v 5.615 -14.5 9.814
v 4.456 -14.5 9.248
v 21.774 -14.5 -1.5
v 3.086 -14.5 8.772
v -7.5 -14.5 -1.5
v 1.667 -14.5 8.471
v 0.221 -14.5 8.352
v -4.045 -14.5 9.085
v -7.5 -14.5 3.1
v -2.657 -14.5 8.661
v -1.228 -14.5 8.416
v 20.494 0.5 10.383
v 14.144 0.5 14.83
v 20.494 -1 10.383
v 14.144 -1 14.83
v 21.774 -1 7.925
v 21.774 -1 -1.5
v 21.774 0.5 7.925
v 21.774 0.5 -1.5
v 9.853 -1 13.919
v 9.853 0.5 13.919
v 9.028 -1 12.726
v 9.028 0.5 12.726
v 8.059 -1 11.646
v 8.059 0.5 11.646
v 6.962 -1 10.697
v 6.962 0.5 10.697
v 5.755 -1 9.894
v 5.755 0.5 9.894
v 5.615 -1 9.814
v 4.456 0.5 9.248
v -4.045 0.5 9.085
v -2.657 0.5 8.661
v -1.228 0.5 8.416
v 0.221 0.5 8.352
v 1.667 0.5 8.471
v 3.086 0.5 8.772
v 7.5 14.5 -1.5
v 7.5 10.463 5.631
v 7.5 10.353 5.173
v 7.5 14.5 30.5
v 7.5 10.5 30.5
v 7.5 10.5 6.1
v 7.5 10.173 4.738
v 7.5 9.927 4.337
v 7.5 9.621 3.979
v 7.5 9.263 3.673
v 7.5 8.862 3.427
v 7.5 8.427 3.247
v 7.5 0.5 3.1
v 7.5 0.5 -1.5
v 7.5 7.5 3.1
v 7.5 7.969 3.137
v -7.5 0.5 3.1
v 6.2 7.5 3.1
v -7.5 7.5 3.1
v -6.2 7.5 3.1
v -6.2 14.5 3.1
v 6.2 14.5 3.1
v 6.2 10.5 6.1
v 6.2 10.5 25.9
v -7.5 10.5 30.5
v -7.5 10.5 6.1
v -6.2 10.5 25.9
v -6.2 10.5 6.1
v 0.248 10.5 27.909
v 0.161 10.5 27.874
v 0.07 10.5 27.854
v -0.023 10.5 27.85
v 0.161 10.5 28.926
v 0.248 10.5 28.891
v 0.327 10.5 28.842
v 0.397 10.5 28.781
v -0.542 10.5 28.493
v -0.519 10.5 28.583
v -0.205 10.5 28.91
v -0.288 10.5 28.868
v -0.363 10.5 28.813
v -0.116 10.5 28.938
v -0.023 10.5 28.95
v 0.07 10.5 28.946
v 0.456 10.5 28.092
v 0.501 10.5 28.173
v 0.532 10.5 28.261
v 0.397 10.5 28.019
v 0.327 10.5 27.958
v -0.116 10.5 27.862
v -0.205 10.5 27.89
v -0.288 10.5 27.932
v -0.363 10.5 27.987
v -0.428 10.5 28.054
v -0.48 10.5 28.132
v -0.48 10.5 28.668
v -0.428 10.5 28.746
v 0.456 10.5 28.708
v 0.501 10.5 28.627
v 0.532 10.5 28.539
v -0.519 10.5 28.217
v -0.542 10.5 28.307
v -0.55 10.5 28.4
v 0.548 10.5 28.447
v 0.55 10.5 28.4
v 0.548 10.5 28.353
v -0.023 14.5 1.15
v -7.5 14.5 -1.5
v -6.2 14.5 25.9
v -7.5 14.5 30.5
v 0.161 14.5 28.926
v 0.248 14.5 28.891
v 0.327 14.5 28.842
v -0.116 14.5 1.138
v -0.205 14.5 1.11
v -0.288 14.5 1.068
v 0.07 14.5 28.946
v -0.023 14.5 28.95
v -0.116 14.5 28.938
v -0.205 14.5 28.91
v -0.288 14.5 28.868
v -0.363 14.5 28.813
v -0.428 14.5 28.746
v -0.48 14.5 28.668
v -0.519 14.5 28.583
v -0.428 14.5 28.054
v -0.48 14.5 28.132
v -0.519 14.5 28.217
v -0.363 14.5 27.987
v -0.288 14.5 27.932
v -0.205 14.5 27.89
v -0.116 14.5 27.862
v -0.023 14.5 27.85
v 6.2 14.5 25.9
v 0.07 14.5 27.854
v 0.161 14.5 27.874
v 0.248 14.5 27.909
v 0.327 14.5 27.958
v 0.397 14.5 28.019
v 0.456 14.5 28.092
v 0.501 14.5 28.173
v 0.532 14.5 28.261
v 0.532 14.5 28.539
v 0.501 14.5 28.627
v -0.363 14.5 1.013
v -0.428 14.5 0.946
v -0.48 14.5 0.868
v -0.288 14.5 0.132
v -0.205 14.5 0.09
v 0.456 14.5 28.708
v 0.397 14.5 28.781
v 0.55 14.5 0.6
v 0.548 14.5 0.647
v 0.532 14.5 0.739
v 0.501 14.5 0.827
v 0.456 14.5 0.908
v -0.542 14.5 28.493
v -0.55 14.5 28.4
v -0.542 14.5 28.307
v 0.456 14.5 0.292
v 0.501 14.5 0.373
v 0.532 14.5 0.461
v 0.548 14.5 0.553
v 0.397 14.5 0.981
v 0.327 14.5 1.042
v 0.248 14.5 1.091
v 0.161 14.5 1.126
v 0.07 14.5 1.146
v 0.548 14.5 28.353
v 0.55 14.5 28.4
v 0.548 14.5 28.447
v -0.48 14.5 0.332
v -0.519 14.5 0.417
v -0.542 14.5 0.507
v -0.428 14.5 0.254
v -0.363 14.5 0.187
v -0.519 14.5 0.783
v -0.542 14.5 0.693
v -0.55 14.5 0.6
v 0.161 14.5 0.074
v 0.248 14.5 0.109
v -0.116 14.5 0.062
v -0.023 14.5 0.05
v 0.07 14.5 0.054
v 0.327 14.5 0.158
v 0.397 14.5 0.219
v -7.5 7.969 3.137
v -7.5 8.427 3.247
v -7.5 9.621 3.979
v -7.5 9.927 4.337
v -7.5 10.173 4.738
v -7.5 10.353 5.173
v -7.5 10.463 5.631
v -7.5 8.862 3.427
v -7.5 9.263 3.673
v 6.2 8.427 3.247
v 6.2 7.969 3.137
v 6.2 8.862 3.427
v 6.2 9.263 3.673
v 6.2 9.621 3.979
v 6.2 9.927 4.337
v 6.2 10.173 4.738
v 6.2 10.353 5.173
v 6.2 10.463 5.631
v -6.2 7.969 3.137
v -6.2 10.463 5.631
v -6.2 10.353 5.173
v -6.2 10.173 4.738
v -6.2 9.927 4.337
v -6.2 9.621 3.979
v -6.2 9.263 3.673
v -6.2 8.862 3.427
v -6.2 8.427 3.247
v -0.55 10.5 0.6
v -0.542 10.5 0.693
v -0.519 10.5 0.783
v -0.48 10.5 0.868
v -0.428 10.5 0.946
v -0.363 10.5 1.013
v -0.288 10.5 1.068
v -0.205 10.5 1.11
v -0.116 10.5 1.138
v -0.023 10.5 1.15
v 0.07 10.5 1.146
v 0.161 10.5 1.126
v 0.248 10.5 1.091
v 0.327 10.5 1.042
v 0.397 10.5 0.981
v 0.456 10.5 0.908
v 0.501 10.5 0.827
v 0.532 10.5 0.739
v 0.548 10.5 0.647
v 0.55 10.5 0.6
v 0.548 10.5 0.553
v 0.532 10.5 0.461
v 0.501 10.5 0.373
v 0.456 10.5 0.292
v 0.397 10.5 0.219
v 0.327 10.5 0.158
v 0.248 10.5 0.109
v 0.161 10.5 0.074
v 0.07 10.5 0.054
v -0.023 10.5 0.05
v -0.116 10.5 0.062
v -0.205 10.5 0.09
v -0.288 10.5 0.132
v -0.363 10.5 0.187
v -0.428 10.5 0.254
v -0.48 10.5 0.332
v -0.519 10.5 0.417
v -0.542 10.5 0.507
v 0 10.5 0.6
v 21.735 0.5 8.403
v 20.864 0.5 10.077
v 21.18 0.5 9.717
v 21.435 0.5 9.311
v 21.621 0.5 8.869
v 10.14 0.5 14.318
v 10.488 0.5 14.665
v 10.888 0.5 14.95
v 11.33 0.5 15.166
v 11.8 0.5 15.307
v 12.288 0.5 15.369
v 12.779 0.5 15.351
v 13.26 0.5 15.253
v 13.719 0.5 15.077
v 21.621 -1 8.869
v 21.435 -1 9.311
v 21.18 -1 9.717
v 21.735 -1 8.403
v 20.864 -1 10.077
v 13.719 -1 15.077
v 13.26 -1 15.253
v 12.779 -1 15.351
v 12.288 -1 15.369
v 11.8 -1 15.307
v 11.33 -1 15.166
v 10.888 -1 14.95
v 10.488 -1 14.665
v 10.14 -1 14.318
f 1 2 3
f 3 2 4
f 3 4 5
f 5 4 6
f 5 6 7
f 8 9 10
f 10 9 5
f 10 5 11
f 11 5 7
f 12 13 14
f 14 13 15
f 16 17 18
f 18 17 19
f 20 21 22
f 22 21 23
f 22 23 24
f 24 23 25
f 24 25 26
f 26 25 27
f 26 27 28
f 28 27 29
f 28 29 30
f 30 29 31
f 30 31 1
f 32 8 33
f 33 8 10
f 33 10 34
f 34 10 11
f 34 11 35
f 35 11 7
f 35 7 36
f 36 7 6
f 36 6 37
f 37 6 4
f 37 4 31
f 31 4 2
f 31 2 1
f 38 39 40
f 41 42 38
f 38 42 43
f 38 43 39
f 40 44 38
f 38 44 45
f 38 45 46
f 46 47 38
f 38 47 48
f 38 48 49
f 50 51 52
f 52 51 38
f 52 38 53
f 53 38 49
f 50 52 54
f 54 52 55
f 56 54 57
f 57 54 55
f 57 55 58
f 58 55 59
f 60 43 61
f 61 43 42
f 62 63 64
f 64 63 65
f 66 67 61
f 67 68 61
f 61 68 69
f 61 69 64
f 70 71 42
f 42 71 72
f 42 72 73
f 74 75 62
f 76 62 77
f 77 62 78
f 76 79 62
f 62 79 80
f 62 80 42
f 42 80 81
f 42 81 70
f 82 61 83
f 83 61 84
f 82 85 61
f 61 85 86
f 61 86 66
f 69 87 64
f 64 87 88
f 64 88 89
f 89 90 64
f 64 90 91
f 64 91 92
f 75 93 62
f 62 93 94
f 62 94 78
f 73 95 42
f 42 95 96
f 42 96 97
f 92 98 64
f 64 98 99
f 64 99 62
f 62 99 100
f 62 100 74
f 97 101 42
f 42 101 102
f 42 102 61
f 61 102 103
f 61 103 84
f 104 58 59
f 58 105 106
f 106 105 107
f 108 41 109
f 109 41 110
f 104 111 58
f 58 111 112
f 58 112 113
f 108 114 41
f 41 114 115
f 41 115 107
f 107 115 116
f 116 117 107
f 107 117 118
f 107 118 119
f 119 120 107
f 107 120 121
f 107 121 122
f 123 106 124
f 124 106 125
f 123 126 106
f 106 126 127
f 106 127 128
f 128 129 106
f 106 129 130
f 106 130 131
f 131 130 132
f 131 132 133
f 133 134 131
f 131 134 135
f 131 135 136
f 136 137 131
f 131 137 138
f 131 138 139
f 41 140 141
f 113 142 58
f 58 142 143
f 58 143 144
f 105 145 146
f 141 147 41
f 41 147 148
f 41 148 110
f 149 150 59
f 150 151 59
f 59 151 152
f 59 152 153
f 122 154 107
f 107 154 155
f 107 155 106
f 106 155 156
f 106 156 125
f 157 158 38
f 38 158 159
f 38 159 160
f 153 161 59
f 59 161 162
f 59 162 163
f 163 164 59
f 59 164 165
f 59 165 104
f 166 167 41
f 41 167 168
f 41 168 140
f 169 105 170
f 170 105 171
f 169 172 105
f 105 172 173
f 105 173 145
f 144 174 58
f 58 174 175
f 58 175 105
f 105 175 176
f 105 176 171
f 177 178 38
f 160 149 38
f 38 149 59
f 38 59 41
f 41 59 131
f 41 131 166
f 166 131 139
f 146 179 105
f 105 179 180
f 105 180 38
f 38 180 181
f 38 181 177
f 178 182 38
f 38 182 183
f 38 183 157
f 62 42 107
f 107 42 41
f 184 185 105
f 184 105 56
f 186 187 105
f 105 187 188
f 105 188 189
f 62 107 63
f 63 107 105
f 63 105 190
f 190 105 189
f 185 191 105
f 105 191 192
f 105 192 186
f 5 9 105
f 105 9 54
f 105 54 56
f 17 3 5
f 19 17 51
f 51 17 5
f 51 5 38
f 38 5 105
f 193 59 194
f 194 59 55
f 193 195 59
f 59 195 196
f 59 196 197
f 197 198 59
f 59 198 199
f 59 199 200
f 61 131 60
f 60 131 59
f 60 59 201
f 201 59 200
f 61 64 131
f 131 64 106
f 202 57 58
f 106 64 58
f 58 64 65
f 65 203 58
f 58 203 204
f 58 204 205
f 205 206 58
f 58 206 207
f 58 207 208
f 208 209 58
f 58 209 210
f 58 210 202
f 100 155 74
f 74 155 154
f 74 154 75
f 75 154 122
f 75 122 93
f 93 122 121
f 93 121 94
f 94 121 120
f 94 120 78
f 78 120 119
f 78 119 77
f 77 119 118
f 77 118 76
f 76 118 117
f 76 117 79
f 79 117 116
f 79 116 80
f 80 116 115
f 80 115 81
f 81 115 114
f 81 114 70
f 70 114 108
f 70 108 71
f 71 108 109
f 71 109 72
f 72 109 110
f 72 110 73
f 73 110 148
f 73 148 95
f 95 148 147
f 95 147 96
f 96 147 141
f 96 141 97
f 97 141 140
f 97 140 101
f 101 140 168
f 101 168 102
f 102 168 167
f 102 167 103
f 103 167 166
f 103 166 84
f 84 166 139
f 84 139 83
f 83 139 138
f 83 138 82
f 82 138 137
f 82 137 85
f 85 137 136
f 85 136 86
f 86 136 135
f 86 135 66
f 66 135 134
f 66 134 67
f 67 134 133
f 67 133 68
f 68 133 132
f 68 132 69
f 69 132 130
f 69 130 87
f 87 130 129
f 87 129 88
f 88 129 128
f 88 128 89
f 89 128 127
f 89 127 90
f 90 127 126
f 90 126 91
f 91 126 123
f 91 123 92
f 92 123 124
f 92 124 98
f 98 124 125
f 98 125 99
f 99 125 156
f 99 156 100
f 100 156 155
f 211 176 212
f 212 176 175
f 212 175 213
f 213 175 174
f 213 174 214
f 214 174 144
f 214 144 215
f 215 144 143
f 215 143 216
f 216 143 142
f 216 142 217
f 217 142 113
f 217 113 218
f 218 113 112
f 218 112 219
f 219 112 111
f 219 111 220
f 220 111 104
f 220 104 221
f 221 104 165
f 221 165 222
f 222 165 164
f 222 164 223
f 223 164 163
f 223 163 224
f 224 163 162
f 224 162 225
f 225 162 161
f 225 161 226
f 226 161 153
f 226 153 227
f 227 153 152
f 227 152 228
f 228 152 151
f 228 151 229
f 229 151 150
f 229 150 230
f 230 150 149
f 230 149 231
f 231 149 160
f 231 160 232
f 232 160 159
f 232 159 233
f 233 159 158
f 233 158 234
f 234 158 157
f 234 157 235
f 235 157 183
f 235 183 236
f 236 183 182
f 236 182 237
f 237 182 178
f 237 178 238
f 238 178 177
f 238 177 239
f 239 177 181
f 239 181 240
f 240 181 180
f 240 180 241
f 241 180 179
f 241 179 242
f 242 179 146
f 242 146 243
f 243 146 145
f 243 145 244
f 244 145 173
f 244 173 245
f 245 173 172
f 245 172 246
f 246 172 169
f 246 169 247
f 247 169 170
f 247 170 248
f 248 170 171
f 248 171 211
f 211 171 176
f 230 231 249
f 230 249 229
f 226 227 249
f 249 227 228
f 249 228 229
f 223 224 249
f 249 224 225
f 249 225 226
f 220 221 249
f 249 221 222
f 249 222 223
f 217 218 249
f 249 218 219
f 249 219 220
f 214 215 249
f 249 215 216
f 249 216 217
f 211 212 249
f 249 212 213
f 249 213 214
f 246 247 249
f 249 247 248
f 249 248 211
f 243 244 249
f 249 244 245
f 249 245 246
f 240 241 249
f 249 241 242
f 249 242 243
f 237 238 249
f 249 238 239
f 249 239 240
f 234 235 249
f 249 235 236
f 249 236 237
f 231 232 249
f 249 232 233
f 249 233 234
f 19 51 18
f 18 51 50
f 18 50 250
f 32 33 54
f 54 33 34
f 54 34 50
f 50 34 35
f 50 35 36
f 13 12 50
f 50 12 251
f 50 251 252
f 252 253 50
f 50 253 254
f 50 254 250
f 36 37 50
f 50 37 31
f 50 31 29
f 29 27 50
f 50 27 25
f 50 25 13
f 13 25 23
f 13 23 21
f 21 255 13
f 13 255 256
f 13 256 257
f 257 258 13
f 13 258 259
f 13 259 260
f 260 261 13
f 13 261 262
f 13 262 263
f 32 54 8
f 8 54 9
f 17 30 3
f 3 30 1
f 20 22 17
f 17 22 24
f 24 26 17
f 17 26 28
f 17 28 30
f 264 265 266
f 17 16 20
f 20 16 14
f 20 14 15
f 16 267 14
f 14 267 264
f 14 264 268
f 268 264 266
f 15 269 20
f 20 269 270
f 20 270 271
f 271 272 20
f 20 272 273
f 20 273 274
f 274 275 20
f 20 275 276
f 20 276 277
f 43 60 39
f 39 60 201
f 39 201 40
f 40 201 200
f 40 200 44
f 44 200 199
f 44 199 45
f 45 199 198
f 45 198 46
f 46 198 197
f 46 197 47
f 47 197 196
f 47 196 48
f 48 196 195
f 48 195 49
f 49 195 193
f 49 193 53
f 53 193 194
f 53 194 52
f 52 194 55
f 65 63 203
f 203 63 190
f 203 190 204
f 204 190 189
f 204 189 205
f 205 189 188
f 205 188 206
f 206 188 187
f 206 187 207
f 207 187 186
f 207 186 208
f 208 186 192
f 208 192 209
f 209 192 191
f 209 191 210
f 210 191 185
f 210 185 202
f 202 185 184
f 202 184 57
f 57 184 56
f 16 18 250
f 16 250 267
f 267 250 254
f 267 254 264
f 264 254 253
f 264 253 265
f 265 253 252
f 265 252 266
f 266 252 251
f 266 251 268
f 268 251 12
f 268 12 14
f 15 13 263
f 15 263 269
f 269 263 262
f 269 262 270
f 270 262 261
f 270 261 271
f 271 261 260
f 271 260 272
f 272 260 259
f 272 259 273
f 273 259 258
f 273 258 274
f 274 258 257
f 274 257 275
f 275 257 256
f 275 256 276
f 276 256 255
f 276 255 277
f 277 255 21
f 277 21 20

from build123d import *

# Parameters (mm, degrees)
SKETCH1_W               = 15
SKETCH1_H               = 32
SKETCH1_R               = 0.55
SKETCH1_W_2             = 12.4
SKETCH1_H_2             = 22.8
SERVO_MOUNT_PLATE_DEPTH = 4
SKETCH3_R               = 0.55
BOSS_EXTRUDE3_DEPTH     = 25
BOSS_EXTRUDE9_DEPTH     = 15
CUT_EXTRUDE3_START      = 1.5
CUT_EXTRUDE3_DEPTH      = 13.5
FILLET1_R               = 3
BODY_MOVE_COPY1_ANGLE   = 90


with BuildPart() as part:
    # Sketch1 → Servo Mount Plate (new body)
    with BuildSketch(Plane.XY):
        Rectangle(SKETCH1_W, SKETCH1_H)
        with Locations((0, 13.9)):
            Circle(SKETCH1_R, mode=Mode.SUBTRACT)
        with Locations((0, -13.9)):
            Circle(SKETCH1_R, mode=Mode.SUBTRACT)
        Rectangle(SKETCH1_W_2, SKETCH1_H_2, mode=Mode.SUBTRACT)
    extrude(amount=SERVO_MOUNT_PLATE_DEPTH)

    # Sketch3 → Boss-Extrude3 (add)
    # profile 1 of 2: a face of its own
    with BuildSketch(Plane.XY.offset(4)):
        Polygon((6.2, -11.4), (-6.2, -11.4), (-7.5, -11.4), (-7.5, -16), (7.5, -16), (7.5, -11.4), align=None)
        with Locations((0, -13.9)):
            Circle(SKETCH3_R, mode=Mode.SUBTRACT)
    # profile 2 of 2: a face of its own
    with BuildSketch(Plane.XY.offset(4)):
        with Locations((0, -13.9)):
            Circle(SKETCH3_R)
    extrude(amount=BOSS_EXTRUDE3_DEPTH)

    # Sketch5 → Boss-Extrude9 (add)
    with BuildSketch(Plane.XY.offset(14)):
        with BuildLine():
            Line((5.615385478, -4.685808185), (7.5, -6.00542948))
            Line((7.5, -6.00542948), (21.773725966, -16))
            Line((21.773725966, -16), (21.773725966, -5.013028701))
            Line((21.773725966, -5.013028701), (11.126345195, 2.442347577))
            ThreePointArc((11.126345195, 2.442347577), (9.098023831, -1.683915153), (5.615385478, -4.685808185))
        make_face()
        Polygon((21.773725966, -16), (7.5, -6.00542948), (7.5, -11.4), (7.5, -16), align=None)
        with BuildLine():
            Line((7.5, -11.4), (7.5, -6.00542948))
            Line((7.5, -6.00542948), (5.615385478, -4.685808185))
            ThreePointArc((5.615385478, -4.685808185), (0.865900109, -6.117354403), (-4.044697914, -5.415241232))
            Line((-4.044697914, -5.415241232), (-7.5, -11.4))
            Line((-7.5, -11.4), (7.5, -11.4))
        make_face()
    extrude(amount=BOSS_EXTRUDE9_DEPTH)

    # Sketch5<8> → Cut-Extrude3 (cut)
    with BuildSketch(Plane.XY.offset(14).offset(CUT_EXTRUDE3_START)):
        with BuildLine():
            Line((5.615385478, -4.685808185), (7.5, -6.00542948))
            Line((7.5, -6.00542948), (21.773725966, -16))
            Line((21.773725966, -16), (21.773725966, -5.013028701))
            Line((21.773725966, -5.013028701), (11.126345195, 2.442347577))
            ThreePointArc((11.126345195, 2.442347577), (9.098023831, -1.683915153), (5.615385478, -4.685808185))
        make_face()
    extrude(amount=CUT_EXTRUDE3_DEPTH, mode=Mode.SUBTRACT)

    # Fillet1
    fillet1_edges = [part.edges().sort_by_distance(p)[0] for p in [
        (6.85, -11.4, 4),
        (-6.85, -11.4, 4),
        (11.126345195, 2.442347577, 14.75),
        (21.773725966, -5.013028701, 14.75),
    ]]
    fillet(fillet1_edges, radius=FILLET1_R)


with BuildPart() as part_1:
    # Body-Move/Copy1: moved
    add(part.part.rotate(Axis((0, 0, 14.5), (1, 0, 0)), BODY_MOVE_COPY1_ANGLE))


solid = part_1.part
